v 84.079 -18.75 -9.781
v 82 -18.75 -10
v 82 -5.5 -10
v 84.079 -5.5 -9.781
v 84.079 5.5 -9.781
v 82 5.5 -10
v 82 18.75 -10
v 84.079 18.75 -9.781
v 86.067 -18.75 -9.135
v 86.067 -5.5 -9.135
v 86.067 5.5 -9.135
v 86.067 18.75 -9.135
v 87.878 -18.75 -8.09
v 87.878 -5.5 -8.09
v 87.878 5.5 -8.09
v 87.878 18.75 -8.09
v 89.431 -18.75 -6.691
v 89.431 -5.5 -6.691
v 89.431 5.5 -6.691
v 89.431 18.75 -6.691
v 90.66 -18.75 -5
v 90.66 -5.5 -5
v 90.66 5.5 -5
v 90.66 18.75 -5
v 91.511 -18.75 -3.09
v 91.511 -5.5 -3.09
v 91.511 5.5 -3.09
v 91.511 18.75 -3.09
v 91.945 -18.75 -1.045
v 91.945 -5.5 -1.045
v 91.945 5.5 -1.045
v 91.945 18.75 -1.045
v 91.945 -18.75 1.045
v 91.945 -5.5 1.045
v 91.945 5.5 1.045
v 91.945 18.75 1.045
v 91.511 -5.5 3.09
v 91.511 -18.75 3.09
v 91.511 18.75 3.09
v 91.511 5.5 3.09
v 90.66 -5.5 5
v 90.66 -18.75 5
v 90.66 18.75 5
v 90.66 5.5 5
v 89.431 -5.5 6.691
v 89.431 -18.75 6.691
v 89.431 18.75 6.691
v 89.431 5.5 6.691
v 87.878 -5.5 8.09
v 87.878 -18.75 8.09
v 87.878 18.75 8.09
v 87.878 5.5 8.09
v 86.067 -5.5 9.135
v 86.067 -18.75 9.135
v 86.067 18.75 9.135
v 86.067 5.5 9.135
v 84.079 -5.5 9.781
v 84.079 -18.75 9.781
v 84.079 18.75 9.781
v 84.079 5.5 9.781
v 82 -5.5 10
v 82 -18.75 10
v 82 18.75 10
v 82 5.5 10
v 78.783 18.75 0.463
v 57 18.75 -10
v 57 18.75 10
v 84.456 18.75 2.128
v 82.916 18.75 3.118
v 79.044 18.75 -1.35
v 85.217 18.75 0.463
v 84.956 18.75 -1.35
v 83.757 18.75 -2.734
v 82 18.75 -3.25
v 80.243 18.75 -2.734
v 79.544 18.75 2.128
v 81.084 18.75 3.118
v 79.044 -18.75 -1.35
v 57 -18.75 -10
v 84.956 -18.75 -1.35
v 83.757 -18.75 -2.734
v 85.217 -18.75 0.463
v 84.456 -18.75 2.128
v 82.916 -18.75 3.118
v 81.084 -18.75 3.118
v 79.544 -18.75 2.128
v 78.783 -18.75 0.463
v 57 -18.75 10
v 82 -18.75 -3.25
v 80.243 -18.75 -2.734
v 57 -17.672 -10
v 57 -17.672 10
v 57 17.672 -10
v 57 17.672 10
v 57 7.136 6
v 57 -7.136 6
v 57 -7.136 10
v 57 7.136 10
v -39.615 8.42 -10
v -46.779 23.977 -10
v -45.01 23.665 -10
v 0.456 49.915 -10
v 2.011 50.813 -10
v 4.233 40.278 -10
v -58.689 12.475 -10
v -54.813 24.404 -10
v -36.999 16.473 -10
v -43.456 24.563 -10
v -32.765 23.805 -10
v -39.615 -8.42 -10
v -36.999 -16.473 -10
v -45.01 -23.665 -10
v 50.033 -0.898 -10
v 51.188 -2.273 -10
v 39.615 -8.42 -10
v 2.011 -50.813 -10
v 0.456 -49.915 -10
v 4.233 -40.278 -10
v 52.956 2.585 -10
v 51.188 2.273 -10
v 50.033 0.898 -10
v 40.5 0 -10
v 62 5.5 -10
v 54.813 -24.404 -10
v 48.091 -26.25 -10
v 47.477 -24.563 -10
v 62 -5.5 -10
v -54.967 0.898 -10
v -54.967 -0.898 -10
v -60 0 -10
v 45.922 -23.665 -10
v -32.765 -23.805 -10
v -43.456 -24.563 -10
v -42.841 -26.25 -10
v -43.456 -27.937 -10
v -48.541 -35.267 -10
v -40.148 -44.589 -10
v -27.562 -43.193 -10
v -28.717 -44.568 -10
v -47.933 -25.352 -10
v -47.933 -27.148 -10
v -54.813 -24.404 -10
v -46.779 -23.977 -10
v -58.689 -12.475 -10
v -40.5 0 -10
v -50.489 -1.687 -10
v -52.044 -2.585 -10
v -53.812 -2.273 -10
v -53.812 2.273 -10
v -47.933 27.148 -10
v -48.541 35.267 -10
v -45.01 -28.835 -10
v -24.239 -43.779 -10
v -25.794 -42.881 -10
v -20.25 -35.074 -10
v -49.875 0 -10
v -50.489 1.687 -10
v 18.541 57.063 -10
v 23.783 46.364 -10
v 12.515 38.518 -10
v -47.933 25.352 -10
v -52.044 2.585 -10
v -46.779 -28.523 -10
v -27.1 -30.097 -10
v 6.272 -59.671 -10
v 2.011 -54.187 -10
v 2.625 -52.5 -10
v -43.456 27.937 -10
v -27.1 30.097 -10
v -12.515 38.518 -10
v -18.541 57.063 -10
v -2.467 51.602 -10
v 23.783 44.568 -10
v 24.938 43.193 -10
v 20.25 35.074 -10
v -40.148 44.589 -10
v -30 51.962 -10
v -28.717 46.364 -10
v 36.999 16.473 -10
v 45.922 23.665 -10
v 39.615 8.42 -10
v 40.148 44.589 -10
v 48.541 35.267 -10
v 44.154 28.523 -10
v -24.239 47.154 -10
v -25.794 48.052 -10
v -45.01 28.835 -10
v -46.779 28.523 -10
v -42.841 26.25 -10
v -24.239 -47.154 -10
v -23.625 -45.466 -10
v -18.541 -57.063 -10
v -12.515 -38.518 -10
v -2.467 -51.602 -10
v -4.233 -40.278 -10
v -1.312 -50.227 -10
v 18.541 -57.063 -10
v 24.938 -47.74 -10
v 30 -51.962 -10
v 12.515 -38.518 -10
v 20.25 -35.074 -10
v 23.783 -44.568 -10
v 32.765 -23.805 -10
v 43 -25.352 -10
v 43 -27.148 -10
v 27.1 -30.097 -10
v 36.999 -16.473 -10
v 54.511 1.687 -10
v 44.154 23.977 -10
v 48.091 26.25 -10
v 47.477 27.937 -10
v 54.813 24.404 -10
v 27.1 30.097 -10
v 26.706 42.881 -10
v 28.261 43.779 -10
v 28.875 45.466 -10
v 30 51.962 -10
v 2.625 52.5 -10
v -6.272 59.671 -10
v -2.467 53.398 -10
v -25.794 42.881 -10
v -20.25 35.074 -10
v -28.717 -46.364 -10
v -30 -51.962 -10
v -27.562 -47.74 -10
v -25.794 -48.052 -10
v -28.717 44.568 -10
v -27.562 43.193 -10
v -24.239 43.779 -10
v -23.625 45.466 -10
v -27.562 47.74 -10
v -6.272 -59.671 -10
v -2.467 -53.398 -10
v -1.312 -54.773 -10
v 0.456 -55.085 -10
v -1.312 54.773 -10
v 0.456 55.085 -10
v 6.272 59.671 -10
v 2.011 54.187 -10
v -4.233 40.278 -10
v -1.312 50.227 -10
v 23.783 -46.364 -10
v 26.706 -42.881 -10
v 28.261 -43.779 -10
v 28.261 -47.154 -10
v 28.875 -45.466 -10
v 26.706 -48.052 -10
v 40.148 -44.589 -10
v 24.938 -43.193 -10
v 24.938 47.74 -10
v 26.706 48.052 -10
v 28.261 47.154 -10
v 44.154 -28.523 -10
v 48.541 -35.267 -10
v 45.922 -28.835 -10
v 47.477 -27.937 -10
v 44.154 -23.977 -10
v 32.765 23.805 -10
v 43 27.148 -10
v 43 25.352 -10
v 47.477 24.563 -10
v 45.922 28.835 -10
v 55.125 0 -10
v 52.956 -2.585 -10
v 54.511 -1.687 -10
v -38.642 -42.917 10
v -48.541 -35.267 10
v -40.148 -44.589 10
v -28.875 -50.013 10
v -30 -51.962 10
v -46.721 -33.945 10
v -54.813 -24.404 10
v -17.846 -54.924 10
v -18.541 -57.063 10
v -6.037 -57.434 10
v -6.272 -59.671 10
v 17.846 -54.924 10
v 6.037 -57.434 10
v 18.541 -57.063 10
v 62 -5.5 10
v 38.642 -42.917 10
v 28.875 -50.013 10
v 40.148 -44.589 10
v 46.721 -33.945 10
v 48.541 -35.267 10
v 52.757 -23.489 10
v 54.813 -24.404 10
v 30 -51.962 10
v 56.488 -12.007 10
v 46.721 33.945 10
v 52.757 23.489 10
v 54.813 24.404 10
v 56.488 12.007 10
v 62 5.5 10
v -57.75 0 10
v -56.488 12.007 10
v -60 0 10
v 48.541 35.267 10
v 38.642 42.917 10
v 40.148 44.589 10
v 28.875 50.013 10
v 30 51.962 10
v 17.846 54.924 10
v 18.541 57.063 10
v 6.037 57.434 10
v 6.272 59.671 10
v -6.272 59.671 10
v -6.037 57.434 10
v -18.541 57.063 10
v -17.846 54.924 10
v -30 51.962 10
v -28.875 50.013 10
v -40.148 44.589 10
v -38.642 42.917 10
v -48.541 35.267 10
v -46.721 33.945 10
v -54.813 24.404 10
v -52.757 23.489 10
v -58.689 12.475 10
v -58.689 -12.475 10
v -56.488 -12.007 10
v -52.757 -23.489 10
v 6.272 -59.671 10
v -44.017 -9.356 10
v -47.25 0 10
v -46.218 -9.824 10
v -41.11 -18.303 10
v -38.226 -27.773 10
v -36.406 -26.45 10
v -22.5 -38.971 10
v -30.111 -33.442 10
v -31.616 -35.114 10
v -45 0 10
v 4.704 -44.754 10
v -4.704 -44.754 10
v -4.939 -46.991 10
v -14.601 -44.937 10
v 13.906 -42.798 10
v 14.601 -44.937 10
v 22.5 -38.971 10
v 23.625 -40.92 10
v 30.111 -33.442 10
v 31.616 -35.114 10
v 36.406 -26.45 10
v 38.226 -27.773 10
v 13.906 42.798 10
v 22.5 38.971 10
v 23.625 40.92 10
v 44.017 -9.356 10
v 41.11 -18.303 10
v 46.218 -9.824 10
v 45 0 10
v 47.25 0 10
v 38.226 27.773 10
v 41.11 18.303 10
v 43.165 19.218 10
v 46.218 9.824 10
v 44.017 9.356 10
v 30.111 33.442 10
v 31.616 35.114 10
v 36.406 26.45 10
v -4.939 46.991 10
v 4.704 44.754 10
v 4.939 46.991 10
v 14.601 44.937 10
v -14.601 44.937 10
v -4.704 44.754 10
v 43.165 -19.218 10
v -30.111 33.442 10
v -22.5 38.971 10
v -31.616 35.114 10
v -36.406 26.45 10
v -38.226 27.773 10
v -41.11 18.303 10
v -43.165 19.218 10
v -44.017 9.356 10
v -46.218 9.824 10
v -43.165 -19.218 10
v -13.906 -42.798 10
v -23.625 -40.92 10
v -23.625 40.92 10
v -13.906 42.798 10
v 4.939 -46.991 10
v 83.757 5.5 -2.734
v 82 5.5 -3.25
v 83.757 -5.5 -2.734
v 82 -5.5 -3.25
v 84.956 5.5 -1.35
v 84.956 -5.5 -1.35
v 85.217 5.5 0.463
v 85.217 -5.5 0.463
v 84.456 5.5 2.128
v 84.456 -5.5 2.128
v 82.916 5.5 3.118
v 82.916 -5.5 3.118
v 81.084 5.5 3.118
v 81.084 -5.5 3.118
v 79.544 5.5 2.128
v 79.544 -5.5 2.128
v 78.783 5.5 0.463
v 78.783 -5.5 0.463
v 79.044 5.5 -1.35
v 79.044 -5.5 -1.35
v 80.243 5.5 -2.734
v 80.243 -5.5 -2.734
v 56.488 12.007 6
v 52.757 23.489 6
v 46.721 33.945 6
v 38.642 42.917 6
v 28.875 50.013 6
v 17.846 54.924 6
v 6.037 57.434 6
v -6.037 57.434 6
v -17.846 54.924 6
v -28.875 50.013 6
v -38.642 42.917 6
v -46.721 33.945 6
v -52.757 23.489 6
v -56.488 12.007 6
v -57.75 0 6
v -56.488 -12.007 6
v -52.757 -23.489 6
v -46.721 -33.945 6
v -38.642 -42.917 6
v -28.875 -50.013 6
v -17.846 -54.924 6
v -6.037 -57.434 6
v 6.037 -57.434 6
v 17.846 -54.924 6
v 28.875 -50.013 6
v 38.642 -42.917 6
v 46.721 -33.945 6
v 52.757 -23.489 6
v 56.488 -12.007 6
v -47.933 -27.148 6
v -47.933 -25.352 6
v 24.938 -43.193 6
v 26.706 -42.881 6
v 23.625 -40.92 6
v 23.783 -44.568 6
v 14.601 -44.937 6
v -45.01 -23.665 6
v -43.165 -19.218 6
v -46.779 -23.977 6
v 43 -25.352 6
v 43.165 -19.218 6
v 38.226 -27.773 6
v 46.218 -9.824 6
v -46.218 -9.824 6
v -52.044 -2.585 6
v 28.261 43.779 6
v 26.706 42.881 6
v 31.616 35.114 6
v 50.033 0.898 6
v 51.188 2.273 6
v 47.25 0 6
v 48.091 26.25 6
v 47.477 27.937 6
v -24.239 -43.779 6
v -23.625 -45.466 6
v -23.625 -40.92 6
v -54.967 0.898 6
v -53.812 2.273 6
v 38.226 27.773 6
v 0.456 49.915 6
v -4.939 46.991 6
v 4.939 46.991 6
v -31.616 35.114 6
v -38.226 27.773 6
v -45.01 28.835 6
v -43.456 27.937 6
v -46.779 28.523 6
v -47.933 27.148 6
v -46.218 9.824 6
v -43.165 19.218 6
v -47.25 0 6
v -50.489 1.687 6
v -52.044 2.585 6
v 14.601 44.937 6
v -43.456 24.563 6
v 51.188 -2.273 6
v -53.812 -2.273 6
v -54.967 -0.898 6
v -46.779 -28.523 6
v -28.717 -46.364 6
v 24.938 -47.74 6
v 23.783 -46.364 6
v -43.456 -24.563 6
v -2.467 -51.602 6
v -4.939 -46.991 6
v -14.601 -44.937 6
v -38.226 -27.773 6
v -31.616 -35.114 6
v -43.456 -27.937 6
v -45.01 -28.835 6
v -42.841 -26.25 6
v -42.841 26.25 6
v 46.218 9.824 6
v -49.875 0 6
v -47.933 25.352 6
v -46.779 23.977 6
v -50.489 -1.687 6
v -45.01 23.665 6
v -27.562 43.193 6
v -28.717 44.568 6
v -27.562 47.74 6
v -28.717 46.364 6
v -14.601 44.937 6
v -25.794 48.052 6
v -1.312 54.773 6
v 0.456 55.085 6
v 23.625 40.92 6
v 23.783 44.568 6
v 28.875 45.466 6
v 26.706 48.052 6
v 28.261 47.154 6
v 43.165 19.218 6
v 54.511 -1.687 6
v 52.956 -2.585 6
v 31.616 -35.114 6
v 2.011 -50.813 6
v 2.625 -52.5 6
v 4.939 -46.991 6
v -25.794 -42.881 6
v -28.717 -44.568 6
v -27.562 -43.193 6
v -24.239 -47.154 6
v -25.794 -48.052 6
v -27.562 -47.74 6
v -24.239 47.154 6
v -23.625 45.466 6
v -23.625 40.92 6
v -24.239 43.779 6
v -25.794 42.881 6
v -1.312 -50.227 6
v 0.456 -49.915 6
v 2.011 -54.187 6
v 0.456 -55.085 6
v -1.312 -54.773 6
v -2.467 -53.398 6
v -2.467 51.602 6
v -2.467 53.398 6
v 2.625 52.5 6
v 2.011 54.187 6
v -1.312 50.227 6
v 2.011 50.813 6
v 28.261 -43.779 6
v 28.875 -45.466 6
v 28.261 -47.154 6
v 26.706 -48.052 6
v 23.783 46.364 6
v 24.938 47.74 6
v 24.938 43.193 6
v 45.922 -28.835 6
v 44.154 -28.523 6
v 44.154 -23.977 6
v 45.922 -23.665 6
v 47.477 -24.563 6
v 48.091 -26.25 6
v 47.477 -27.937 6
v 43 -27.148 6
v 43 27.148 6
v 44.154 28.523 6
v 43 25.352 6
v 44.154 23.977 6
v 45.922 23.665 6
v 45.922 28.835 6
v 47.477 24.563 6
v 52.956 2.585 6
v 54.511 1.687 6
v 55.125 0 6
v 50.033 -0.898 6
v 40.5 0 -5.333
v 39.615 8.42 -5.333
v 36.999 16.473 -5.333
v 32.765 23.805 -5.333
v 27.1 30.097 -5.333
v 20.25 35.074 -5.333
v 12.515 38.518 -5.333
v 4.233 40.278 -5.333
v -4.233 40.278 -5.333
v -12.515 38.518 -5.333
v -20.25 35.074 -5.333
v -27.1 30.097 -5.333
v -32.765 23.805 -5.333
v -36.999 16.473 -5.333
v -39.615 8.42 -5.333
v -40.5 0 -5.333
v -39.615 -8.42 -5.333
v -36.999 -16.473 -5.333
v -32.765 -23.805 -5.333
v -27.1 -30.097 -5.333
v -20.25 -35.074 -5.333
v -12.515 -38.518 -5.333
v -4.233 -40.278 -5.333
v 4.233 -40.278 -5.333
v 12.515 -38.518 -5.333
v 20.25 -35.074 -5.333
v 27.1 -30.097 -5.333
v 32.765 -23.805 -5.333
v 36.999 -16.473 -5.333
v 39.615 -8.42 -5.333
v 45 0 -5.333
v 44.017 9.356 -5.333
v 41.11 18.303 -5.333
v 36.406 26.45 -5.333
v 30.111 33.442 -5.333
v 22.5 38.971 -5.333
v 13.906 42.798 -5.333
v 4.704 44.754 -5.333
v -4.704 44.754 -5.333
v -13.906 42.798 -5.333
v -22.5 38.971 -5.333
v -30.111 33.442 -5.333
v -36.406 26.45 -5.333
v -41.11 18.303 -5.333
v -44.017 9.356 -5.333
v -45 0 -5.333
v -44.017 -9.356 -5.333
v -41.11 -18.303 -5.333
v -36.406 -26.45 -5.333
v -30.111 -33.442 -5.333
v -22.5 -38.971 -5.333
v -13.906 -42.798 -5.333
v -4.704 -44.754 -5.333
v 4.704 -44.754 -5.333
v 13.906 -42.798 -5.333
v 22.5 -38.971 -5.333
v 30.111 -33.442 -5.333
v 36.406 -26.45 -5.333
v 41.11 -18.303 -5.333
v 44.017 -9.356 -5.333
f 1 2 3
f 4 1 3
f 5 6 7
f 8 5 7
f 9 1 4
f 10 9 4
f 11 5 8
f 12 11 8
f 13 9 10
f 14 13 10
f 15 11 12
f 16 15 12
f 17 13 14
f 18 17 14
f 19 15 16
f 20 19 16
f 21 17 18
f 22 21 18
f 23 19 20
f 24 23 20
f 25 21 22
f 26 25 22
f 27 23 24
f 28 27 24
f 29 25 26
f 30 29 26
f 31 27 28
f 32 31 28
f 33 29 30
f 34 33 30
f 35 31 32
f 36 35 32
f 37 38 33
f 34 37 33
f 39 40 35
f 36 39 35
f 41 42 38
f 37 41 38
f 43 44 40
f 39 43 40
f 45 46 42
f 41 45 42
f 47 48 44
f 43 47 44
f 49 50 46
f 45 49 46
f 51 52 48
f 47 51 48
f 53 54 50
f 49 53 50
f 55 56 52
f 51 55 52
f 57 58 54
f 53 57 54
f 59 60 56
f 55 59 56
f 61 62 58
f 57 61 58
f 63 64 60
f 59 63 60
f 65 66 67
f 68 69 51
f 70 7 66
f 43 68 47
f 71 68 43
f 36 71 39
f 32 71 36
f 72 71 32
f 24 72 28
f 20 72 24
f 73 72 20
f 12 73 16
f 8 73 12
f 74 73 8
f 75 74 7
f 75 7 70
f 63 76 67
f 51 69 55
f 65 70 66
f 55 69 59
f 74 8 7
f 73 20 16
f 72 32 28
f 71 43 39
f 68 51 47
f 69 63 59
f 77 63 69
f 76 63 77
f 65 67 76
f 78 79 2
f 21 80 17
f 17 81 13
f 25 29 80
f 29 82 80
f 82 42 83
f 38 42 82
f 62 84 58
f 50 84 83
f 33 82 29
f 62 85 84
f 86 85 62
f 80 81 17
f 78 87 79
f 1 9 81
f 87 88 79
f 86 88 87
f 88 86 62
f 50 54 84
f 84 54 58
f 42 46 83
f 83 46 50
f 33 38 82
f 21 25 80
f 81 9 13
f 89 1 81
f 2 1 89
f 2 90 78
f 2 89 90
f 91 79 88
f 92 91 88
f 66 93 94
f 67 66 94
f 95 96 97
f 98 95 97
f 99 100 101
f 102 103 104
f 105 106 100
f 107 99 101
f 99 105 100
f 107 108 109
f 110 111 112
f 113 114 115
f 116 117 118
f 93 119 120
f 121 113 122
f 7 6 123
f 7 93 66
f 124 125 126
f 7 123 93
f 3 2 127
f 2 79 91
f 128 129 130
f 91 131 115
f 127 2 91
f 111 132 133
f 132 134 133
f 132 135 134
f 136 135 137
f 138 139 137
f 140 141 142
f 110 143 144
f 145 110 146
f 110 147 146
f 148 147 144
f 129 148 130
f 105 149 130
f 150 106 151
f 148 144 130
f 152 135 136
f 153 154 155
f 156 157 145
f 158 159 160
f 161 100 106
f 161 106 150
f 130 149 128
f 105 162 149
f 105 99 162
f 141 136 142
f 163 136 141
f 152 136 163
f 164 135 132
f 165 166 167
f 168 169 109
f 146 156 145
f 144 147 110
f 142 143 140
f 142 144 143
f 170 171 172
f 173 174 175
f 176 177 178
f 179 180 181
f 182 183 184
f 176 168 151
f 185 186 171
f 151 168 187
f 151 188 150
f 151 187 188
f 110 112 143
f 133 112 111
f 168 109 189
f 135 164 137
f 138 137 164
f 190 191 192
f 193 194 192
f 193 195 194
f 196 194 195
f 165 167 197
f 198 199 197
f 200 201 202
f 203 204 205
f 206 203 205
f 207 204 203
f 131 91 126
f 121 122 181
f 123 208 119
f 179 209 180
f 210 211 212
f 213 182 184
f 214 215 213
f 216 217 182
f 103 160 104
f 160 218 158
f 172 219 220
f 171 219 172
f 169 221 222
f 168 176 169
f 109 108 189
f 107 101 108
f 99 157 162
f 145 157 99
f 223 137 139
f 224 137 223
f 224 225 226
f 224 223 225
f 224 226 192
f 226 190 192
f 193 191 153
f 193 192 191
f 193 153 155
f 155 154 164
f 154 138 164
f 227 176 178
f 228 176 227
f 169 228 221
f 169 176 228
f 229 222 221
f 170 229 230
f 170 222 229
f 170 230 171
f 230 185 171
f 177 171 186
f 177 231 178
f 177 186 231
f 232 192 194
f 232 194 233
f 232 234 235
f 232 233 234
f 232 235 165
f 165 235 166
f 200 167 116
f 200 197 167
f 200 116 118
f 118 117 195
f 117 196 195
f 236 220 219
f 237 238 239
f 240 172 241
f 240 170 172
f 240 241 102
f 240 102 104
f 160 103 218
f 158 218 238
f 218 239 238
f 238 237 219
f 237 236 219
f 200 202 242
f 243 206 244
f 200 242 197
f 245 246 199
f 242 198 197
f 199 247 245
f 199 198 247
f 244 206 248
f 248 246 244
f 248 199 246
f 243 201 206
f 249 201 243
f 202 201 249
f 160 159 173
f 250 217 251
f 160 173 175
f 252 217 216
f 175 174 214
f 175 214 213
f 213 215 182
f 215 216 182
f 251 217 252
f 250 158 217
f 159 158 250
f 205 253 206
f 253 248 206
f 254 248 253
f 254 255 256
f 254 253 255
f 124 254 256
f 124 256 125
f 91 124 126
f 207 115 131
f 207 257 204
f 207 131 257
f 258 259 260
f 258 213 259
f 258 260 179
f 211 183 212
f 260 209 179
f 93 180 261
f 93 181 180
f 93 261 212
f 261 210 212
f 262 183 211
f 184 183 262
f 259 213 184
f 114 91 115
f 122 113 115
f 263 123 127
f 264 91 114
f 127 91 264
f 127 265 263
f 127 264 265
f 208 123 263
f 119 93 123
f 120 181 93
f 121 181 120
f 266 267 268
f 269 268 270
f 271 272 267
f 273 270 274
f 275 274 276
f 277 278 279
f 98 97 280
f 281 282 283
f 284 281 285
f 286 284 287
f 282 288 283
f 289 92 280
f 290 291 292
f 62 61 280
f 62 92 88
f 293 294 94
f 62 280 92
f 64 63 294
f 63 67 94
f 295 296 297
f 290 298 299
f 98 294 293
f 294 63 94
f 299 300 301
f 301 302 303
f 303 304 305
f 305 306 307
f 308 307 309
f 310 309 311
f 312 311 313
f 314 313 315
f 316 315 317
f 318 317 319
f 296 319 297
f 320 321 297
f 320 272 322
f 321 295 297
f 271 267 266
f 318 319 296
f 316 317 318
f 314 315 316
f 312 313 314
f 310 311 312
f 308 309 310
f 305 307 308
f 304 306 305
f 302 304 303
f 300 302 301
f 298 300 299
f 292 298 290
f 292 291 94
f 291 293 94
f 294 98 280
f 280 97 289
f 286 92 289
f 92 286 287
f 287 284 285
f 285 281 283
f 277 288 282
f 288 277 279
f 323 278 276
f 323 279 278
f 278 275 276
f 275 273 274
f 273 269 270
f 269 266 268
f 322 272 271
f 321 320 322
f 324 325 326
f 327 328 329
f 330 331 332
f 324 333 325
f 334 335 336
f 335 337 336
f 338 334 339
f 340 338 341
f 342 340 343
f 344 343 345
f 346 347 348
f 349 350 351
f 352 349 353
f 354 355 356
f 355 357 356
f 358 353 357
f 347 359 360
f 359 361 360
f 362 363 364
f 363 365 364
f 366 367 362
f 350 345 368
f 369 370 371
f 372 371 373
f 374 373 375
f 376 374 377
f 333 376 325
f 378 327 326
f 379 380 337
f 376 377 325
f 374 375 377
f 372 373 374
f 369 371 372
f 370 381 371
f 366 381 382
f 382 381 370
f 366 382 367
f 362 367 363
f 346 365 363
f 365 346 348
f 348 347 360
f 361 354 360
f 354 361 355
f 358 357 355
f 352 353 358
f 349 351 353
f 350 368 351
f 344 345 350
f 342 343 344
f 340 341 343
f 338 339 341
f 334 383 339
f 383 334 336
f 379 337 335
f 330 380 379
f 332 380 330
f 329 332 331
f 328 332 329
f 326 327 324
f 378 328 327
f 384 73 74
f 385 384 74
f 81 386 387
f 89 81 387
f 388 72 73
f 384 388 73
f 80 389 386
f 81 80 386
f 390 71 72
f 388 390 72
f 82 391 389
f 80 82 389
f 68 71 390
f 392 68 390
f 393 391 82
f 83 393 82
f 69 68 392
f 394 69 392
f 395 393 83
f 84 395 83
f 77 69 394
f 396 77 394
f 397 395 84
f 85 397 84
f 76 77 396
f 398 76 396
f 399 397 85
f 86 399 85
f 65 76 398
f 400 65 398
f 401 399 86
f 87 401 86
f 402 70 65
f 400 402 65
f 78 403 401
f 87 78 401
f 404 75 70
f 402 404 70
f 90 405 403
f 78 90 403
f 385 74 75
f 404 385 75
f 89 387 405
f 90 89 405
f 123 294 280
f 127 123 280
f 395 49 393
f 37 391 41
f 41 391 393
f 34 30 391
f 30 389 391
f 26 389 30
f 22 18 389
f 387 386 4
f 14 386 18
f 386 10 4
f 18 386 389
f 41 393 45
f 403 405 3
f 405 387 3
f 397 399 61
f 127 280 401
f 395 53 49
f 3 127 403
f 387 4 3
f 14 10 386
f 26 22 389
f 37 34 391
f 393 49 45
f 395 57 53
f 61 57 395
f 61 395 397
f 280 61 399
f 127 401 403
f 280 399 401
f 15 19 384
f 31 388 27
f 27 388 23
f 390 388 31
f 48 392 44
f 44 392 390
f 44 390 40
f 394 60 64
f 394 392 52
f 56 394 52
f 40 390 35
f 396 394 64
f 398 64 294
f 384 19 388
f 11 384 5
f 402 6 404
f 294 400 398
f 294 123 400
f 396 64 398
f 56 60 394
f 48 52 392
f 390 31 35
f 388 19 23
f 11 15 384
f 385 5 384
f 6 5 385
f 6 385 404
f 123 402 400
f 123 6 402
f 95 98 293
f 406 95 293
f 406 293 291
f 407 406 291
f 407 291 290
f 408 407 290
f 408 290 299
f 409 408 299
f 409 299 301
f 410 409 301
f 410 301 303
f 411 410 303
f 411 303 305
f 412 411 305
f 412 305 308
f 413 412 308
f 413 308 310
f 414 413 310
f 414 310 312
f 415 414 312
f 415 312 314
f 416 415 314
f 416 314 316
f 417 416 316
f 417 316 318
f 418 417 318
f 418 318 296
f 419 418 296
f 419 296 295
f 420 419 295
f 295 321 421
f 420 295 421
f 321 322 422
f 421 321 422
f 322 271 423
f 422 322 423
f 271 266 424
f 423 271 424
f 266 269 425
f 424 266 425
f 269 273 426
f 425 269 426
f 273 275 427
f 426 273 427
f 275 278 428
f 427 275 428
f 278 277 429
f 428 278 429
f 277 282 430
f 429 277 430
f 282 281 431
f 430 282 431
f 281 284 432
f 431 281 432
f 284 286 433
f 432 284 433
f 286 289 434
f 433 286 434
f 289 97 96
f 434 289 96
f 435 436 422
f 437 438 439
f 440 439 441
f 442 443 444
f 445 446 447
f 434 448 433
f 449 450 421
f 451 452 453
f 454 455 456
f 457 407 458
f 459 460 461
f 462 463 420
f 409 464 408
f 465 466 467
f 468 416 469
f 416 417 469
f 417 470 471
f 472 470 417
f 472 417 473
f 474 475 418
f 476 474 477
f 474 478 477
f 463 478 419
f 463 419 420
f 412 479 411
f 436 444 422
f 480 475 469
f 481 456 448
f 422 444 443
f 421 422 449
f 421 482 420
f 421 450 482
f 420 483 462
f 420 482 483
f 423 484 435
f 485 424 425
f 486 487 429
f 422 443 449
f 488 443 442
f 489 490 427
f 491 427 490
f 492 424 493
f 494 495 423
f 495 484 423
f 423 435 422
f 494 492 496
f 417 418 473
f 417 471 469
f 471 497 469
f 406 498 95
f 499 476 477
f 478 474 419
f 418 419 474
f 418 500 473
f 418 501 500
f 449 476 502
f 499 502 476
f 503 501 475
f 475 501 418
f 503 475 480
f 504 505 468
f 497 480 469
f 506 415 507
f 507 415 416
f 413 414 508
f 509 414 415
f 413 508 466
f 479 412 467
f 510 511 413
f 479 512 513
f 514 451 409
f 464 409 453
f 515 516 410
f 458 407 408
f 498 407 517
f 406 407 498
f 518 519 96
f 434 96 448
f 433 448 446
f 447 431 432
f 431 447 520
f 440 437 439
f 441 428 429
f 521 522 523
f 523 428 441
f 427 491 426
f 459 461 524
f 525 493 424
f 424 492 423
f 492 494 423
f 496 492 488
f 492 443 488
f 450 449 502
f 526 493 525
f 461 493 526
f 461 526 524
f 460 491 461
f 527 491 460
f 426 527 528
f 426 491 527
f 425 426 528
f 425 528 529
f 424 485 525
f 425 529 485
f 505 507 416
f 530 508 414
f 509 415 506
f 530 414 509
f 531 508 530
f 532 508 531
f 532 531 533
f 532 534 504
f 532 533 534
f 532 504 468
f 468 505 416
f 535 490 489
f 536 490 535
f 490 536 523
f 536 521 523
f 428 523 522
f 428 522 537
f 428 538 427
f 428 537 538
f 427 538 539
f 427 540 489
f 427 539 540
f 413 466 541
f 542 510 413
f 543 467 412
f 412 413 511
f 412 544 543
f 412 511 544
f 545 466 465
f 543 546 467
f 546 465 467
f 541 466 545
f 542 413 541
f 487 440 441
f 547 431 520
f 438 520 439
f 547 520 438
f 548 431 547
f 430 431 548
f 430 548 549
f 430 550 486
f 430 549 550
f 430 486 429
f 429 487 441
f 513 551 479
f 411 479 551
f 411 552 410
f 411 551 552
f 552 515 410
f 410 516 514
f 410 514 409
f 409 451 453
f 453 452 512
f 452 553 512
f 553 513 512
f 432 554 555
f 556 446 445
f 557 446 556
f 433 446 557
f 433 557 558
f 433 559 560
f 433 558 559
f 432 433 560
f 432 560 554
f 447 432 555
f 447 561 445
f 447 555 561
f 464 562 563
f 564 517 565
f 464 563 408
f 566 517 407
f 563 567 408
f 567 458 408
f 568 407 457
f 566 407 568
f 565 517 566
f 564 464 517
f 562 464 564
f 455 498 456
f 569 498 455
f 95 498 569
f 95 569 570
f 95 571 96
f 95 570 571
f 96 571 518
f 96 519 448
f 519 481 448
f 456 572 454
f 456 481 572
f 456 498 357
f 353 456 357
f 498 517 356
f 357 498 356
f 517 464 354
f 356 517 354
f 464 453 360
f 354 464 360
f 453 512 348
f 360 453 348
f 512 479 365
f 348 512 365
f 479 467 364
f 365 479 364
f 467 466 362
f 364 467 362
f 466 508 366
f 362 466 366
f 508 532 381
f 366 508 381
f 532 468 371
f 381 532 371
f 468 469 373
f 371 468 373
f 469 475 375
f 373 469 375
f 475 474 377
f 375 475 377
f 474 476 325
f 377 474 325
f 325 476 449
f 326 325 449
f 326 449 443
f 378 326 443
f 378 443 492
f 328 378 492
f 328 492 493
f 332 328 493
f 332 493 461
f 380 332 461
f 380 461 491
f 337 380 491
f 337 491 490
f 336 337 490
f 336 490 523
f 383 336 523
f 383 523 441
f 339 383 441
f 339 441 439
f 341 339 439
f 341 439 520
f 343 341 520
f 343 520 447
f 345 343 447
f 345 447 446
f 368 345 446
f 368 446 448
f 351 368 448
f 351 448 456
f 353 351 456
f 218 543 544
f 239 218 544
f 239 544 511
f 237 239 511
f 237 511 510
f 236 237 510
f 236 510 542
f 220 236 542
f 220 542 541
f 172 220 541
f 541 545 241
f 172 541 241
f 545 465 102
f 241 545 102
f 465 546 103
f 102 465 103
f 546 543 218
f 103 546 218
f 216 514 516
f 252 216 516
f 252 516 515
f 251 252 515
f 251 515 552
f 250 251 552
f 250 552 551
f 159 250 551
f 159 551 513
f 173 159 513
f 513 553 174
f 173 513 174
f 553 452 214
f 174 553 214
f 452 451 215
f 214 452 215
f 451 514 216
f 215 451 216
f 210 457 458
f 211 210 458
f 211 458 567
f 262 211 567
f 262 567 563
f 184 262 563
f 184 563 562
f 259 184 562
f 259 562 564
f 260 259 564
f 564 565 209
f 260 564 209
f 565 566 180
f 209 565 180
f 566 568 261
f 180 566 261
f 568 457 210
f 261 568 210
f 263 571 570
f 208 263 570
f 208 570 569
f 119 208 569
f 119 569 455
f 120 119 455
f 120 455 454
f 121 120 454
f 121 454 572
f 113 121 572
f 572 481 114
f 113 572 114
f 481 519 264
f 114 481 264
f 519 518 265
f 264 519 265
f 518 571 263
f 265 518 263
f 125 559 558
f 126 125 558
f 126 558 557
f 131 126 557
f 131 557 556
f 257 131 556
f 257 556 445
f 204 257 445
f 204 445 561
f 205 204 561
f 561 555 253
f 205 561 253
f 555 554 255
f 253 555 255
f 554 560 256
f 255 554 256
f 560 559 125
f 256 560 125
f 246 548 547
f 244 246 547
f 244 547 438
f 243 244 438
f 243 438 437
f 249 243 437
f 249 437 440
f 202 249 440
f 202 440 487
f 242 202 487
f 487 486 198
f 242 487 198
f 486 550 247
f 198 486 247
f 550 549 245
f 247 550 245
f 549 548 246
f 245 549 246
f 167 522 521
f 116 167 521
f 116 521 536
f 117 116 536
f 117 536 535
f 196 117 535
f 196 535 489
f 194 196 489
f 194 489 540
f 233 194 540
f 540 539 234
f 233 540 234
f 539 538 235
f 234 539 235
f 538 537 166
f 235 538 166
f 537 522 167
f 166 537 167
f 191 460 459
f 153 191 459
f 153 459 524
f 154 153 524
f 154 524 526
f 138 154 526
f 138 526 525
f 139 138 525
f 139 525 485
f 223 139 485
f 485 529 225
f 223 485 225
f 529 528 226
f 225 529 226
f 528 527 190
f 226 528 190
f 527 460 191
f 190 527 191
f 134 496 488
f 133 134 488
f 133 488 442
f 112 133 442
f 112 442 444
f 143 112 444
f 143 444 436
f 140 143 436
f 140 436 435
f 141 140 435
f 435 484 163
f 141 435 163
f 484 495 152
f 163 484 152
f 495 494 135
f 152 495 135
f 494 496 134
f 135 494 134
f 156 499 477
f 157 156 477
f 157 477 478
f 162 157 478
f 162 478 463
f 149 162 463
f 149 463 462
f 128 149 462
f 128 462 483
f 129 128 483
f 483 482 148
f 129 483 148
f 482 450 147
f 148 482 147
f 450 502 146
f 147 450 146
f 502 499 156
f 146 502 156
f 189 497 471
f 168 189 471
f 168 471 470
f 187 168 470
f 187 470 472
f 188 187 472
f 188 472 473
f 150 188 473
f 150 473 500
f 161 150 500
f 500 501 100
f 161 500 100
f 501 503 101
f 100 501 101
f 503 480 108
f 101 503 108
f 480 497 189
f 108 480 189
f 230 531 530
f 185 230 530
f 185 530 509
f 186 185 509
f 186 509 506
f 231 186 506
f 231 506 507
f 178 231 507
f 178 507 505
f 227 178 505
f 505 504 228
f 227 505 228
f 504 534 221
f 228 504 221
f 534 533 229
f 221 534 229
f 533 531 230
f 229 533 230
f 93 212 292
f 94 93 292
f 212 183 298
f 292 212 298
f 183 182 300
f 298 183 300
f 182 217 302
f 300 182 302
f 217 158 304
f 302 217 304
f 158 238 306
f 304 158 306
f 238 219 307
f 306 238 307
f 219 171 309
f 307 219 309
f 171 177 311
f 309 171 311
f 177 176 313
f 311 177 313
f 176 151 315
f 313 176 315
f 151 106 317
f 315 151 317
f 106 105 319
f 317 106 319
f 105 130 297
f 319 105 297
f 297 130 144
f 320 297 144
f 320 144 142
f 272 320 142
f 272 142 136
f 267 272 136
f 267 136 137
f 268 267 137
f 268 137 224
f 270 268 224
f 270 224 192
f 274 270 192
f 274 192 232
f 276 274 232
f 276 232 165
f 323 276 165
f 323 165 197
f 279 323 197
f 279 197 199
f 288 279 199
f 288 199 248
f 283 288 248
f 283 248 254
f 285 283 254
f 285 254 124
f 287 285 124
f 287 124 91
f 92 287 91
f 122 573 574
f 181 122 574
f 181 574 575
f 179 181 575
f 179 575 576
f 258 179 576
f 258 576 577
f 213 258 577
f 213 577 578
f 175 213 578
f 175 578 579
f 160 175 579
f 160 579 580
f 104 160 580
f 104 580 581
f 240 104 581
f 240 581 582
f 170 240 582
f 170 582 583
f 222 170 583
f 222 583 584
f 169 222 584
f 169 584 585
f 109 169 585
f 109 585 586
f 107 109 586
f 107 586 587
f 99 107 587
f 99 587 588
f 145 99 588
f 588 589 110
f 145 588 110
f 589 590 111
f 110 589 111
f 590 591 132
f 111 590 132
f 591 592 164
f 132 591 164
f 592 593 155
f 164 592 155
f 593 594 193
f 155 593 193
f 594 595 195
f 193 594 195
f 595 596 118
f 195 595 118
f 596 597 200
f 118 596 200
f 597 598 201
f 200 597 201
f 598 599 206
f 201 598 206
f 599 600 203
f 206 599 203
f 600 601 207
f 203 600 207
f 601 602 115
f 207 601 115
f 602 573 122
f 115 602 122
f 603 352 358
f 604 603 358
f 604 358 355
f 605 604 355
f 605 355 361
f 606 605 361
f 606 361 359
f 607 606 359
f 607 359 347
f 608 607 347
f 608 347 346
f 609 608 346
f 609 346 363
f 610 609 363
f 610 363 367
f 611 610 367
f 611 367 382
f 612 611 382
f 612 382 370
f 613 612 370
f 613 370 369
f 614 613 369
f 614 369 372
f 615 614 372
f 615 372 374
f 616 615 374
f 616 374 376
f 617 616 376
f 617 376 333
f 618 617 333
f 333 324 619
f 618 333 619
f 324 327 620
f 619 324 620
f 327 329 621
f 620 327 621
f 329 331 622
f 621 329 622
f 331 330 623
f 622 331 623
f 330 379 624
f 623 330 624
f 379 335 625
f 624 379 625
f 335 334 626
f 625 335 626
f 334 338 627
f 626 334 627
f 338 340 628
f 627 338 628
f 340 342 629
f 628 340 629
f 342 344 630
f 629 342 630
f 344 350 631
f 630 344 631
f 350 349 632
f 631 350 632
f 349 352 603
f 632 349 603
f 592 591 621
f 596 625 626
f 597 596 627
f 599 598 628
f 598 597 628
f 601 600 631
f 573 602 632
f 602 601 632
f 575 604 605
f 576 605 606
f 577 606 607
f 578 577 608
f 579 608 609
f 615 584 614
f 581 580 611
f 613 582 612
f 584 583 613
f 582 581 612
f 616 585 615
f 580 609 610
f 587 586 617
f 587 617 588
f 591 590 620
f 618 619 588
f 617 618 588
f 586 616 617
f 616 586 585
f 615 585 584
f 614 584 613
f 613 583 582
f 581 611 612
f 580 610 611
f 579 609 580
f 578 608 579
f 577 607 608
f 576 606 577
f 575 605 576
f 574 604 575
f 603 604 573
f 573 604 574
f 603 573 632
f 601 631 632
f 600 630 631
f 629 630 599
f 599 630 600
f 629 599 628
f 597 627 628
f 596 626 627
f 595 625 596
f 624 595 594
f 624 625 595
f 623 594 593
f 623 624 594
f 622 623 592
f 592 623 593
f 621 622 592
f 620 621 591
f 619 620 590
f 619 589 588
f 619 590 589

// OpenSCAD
module LEDs(lights,radius,thickness,LEDSize)
{
	translate([0,0,thickness / 3]) 
		for ( i = [0 : 360/lights : 359] )
			translate([sin(i)*radius,cos(i)*radius,0])
				cylinder(h = thickness*2, d=LEDSize, center=true);
}

module WireSlot(radius,thickness,LEDSize,depth)
{
	translate([0,0,thickness-depth]) 
	difference() {
			cylinder(h = thickness, r=(radius)+LEDSize, center=true);
			cylinder(h = thickness*1.6, r=(radius)-LEDSize, center=true);
		}
}

module Handle(handle,radius,thickness,hole,slot)
{
	translate([radius*0.95,-(handle*1.5)/2,-thickness/2])
		difference() {
			union() {
				*translate([-handle/4,(-handle*0.75)/2,0]) /*fillet but disabled */
				*	cube([handle/2,handle*2.2,thickness], centre=true);
				translate([handle,(handle*1.5)/2,thickness/2])
					rotate([90,90,0])
						cylinder(h = handle*1.5, r=thickness/2, center=true);
				cube([handle,handle*1.5,thickness], centre=true);
			}
			translate([handle,(handle*1.5)/2,thickness/2])
				rotate([90,90,0])
					cylinder(h = handle*2, d=hole, center=true);
			translate([handle*0.2,((handle*1.5)/2)-(slot/2),-thickness/2])
					cube([handle*2,slot,thickness*2], centre=true);
		}
	}

module Light()
{
	d = 120;
	d_lens = 90;
	d_diff = d - d_lens;
	lights = 12;
	LEDSize = 5.25;
	thickness = 20;
	union() {
	Handle(25,d/2,thickness,6.5,11);
	difference() {
		cylinder(h = thickness, r=d/2, center=true);
		cylinder(h = thickness*1.2, r=d_lens*0.45, center=true);
		translate([0,0,thickness / 3]) 
			cylinder(h = thickness*1.2, d=d_lens, center=true);
		WireSlot((d-(d_diff/2))/2,thickness,LEDSize,4);
		LEDs(lights,(d-(d_diff/2))/2,thickness,LEDSize);
	}
	
	}
}

Light();
